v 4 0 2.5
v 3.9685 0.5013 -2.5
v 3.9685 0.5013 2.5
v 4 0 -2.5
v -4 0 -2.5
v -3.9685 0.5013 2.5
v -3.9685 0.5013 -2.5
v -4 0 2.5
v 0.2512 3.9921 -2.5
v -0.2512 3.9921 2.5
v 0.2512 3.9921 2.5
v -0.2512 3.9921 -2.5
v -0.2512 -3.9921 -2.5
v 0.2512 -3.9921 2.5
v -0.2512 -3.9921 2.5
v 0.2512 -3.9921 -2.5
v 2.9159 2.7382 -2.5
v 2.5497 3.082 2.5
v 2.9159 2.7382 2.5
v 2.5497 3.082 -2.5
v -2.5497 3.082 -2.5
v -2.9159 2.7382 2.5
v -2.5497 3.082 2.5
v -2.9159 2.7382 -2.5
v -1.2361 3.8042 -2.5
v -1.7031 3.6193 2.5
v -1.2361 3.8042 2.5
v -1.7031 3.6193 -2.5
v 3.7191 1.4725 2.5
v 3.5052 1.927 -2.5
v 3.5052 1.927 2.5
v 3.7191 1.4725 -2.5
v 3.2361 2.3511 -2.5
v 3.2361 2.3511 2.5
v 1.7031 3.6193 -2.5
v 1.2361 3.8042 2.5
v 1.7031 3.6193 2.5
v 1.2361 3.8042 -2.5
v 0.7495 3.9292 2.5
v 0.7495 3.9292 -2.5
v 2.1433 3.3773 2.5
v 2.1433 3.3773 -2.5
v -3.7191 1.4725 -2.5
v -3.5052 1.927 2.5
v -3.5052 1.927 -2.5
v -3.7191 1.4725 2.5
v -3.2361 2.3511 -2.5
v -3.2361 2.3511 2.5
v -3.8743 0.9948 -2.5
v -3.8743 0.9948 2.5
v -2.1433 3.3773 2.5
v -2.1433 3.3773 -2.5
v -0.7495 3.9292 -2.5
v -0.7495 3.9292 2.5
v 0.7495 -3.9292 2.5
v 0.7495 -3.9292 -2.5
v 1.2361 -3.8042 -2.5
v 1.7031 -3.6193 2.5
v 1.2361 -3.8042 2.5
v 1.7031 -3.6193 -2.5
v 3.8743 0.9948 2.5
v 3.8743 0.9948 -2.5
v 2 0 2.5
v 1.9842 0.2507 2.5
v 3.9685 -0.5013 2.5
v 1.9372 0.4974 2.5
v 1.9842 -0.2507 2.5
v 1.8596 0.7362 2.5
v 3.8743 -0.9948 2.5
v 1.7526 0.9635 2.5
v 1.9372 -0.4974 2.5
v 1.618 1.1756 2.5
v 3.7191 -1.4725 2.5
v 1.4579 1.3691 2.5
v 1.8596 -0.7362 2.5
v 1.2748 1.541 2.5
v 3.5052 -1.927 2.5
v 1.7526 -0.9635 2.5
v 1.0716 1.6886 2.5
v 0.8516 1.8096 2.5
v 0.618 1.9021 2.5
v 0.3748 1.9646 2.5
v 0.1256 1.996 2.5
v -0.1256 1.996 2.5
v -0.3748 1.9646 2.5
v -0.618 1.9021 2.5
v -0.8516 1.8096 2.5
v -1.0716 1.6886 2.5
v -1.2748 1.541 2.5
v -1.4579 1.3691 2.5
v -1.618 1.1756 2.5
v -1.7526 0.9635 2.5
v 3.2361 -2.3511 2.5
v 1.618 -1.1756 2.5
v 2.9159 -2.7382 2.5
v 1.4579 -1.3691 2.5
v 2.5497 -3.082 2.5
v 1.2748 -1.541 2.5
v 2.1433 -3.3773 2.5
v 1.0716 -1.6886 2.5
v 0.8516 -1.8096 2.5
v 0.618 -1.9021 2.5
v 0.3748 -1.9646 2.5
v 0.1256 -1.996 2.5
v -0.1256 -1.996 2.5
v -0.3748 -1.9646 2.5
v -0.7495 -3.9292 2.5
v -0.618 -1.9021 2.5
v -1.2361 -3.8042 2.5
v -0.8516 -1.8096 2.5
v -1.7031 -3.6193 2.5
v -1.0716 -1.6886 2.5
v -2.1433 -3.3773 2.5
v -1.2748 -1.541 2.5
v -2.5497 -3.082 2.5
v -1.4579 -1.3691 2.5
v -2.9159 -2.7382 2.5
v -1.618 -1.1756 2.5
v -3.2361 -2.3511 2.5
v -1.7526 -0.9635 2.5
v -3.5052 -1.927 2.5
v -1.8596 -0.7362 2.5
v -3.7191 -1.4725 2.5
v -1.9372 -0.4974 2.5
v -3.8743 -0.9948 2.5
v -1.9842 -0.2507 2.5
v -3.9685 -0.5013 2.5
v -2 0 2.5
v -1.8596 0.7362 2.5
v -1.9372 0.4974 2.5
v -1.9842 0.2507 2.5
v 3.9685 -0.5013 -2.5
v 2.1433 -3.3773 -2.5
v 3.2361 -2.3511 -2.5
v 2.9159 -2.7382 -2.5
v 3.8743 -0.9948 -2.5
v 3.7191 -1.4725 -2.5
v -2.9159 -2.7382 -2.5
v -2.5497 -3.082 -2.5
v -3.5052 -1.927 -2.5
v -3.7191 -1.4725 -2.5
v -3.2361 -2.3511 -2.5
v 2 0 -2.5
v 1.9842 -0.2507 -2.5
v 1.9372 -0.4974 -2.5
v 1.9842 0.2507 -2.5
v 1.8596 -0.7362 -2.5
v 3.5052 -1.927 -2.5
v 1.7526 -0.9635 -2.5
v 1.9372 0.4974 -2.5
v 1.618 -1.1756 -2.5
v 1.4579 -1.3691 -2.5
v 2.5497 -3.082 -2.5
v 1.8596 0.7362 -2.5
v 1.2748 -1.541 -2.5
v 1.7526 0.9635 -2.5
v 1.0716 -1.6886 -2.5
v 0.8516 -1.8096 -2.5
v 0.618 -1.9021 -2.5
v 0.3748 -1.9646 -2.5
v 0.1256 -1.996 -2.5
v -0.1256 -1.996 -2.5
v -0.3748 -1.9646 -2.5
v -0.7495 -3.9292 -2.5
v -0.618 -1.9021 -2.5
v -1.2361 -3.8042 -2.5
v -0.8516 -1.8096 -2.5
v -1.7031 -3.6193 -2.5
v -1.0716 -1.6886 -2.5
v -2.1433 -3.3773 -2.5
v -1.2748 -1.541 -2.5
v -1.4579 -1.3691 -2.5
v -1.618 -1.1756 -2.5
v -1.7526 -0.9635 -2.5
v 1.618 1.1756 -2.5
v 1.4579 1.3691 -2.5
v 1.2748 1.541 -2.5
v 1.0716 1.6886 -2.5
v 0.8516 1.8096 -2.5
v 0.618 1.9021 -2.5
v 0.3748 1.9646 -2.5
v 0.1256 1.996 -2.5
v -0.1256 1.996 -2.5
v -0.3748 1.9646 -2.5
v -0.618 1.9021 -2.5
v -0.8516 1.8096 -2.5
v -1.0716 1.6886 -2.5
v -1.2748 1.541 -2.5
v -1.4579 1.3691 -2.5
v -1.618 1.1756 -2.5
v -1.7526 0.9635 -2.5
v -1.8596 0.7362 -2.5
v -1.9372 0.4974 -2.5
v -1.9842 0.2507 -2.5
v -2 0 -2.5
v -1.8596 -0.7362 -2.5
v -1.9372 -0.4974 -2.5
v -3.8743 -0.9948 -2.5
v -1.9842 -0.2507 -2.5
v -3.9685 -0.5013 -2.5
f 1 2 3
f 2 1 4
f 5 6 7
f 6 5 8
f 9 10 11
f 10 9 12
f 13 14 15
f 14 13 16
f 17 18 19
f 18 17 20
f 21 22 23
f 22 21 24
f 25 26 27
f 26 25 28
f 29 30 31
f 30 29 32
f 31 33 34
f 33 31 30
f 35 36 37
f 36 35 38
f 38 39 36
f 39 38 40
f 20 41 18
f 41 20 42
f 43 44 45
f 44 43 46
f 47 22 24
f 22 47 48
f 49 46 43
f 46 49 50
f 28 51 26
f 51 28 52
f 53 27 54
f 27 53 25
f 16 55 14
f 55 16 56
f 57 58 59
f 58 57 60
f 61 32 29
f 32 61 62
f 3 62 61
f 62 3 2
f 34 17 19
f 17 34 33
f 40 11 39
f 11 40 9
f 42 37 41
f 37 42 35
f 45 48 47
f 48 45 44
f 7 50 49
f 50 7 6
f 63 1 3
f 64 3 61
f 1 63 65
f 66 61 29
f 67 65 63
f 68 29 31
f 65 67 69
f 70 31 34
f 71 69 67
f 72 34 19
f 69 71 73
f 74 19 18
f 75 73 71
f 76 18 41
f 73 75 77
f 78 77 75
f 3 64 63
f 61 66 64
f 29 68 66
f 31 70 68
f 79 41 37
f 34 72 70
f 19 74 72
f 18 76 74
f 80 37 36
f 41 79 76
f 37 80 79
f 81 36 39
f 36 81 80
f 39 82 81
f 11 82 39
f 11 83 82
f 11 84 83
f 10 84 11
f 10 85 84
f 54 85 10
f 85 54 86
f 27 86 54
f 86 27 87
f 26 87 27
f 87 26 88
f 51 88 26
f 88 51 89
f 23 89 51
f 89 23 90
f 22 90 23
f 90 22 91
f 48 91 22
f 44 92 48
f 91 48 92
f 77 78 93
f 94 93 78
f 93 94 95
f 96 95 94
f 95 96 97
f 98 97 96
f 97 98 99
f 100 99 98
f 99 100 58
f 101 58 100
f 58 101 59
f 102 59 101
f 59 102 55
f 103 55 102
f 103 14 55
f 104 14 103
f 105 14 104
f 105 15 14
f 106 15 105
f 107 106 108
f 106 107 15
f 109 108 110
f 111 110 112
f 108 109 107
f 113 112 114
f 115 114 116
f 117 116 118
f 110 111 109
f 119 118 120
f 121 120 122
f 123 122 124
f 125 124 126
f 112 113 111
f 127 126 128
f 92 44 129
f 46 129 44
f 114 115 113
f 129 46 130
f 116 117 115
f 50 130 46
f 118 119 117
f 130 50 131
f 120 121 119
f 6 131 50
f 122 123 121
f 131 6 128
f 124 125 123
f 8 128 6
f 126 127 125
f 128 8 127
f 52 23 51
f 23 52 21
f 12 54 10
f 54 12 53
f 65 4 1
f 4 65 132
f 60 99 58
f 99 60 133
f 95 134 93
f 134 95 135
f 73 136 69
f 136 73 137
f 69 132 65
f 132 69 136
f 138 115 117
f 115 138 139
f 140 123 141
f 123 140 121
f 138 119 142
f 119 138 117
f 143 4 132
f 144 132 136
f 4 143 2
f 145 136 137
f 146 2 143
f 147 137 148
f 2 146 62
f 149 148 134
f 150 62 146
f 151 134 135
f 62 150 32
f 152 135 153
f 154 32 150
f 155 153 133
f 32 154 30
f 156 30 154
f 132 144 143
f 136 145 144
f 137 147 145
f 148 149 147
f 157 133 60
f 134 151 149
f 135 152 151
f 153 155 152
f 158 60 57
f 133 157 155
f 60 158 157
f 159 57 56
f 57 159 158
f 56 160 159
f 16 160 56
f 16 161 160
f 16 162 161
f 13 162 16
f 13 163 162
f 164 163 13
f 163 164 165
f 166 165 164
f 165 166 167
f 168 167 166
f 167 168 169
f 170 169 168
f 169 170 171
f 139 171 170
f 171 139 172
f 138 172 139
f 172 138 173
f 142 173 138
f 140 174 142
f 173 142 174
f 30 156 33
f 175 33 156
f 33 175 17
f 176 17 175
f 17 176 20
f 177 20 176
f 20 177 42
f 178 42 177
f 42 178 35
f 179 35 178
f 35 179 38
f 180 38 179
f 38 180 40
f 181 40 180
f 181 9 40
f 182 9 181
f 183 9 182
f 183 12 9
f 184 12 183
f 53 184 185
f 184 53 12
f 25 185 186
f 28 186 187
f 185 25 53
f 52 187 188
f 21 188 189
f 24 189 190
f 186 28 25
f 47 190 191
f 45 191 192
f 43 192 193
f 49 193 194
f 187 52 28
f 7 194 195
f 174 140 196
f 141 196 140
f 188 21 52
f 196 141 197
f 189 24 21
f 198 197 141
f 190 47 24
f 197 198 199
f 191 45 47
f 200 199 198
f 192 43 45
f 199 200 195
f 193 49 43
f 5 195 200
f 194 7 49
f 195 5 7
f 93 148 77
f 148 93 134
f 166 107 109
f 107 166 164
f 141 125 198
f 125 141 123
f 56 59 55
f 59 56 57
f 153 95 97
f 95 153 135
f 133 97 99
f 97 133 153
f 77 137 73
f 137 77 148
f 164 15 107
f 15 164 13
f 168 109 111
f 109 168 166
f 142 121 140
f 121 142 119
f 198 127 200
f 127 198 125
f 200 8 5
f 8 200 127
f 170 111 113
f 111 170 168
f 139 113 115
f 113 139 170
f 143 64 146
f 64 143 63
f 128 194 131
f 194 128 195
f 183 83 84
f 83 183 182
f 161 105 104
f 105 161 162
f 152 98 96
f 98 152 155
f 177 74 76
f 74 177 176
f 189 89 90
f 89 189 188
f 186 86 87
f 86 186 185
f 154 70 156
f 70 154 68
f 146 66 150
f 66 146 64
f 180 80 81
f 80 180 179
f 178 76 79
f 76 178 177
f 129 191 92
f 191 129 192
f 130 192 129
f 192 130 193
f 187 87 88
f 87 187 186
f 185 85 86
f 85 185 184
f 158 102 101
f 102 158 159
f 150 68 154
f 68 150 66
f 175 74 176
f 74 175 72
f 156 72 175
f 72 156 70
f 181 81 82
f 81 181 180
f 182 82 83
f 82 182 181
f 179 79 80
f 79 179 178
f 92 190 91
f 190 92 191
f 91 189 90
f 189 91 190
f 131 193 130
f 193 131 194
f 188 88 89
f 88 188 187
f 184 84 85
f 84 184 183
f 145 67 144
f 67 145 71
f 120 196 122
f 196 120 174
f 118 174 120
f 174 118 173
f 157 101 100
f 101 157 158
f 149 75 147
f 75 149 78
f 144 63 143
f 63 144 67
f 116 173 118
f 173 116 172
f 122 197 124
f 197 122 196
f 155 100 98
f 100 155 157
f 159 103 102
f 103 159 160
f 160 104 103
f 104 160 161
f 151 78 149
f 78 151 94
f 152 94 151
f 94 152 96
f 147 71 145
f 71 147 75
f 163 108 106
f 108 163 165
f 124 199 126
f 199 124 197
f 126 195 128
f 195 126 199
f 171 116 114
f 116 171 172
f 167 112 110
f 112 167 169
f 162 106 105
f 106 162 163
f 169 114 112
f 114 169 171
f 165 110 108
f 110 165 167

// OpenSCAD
$fn = 50;


difference() {
	union() {
		translate(v = [0, 0, -2.5000000000]) {
			cylinder(h = 5, r = 4.0000000000);
		}
	}
	union() {
		translate(v = [0, 0, -100.0000000000]) {
			cylinder(h = 200, r = 2.0000000000);
		}
	}
}
